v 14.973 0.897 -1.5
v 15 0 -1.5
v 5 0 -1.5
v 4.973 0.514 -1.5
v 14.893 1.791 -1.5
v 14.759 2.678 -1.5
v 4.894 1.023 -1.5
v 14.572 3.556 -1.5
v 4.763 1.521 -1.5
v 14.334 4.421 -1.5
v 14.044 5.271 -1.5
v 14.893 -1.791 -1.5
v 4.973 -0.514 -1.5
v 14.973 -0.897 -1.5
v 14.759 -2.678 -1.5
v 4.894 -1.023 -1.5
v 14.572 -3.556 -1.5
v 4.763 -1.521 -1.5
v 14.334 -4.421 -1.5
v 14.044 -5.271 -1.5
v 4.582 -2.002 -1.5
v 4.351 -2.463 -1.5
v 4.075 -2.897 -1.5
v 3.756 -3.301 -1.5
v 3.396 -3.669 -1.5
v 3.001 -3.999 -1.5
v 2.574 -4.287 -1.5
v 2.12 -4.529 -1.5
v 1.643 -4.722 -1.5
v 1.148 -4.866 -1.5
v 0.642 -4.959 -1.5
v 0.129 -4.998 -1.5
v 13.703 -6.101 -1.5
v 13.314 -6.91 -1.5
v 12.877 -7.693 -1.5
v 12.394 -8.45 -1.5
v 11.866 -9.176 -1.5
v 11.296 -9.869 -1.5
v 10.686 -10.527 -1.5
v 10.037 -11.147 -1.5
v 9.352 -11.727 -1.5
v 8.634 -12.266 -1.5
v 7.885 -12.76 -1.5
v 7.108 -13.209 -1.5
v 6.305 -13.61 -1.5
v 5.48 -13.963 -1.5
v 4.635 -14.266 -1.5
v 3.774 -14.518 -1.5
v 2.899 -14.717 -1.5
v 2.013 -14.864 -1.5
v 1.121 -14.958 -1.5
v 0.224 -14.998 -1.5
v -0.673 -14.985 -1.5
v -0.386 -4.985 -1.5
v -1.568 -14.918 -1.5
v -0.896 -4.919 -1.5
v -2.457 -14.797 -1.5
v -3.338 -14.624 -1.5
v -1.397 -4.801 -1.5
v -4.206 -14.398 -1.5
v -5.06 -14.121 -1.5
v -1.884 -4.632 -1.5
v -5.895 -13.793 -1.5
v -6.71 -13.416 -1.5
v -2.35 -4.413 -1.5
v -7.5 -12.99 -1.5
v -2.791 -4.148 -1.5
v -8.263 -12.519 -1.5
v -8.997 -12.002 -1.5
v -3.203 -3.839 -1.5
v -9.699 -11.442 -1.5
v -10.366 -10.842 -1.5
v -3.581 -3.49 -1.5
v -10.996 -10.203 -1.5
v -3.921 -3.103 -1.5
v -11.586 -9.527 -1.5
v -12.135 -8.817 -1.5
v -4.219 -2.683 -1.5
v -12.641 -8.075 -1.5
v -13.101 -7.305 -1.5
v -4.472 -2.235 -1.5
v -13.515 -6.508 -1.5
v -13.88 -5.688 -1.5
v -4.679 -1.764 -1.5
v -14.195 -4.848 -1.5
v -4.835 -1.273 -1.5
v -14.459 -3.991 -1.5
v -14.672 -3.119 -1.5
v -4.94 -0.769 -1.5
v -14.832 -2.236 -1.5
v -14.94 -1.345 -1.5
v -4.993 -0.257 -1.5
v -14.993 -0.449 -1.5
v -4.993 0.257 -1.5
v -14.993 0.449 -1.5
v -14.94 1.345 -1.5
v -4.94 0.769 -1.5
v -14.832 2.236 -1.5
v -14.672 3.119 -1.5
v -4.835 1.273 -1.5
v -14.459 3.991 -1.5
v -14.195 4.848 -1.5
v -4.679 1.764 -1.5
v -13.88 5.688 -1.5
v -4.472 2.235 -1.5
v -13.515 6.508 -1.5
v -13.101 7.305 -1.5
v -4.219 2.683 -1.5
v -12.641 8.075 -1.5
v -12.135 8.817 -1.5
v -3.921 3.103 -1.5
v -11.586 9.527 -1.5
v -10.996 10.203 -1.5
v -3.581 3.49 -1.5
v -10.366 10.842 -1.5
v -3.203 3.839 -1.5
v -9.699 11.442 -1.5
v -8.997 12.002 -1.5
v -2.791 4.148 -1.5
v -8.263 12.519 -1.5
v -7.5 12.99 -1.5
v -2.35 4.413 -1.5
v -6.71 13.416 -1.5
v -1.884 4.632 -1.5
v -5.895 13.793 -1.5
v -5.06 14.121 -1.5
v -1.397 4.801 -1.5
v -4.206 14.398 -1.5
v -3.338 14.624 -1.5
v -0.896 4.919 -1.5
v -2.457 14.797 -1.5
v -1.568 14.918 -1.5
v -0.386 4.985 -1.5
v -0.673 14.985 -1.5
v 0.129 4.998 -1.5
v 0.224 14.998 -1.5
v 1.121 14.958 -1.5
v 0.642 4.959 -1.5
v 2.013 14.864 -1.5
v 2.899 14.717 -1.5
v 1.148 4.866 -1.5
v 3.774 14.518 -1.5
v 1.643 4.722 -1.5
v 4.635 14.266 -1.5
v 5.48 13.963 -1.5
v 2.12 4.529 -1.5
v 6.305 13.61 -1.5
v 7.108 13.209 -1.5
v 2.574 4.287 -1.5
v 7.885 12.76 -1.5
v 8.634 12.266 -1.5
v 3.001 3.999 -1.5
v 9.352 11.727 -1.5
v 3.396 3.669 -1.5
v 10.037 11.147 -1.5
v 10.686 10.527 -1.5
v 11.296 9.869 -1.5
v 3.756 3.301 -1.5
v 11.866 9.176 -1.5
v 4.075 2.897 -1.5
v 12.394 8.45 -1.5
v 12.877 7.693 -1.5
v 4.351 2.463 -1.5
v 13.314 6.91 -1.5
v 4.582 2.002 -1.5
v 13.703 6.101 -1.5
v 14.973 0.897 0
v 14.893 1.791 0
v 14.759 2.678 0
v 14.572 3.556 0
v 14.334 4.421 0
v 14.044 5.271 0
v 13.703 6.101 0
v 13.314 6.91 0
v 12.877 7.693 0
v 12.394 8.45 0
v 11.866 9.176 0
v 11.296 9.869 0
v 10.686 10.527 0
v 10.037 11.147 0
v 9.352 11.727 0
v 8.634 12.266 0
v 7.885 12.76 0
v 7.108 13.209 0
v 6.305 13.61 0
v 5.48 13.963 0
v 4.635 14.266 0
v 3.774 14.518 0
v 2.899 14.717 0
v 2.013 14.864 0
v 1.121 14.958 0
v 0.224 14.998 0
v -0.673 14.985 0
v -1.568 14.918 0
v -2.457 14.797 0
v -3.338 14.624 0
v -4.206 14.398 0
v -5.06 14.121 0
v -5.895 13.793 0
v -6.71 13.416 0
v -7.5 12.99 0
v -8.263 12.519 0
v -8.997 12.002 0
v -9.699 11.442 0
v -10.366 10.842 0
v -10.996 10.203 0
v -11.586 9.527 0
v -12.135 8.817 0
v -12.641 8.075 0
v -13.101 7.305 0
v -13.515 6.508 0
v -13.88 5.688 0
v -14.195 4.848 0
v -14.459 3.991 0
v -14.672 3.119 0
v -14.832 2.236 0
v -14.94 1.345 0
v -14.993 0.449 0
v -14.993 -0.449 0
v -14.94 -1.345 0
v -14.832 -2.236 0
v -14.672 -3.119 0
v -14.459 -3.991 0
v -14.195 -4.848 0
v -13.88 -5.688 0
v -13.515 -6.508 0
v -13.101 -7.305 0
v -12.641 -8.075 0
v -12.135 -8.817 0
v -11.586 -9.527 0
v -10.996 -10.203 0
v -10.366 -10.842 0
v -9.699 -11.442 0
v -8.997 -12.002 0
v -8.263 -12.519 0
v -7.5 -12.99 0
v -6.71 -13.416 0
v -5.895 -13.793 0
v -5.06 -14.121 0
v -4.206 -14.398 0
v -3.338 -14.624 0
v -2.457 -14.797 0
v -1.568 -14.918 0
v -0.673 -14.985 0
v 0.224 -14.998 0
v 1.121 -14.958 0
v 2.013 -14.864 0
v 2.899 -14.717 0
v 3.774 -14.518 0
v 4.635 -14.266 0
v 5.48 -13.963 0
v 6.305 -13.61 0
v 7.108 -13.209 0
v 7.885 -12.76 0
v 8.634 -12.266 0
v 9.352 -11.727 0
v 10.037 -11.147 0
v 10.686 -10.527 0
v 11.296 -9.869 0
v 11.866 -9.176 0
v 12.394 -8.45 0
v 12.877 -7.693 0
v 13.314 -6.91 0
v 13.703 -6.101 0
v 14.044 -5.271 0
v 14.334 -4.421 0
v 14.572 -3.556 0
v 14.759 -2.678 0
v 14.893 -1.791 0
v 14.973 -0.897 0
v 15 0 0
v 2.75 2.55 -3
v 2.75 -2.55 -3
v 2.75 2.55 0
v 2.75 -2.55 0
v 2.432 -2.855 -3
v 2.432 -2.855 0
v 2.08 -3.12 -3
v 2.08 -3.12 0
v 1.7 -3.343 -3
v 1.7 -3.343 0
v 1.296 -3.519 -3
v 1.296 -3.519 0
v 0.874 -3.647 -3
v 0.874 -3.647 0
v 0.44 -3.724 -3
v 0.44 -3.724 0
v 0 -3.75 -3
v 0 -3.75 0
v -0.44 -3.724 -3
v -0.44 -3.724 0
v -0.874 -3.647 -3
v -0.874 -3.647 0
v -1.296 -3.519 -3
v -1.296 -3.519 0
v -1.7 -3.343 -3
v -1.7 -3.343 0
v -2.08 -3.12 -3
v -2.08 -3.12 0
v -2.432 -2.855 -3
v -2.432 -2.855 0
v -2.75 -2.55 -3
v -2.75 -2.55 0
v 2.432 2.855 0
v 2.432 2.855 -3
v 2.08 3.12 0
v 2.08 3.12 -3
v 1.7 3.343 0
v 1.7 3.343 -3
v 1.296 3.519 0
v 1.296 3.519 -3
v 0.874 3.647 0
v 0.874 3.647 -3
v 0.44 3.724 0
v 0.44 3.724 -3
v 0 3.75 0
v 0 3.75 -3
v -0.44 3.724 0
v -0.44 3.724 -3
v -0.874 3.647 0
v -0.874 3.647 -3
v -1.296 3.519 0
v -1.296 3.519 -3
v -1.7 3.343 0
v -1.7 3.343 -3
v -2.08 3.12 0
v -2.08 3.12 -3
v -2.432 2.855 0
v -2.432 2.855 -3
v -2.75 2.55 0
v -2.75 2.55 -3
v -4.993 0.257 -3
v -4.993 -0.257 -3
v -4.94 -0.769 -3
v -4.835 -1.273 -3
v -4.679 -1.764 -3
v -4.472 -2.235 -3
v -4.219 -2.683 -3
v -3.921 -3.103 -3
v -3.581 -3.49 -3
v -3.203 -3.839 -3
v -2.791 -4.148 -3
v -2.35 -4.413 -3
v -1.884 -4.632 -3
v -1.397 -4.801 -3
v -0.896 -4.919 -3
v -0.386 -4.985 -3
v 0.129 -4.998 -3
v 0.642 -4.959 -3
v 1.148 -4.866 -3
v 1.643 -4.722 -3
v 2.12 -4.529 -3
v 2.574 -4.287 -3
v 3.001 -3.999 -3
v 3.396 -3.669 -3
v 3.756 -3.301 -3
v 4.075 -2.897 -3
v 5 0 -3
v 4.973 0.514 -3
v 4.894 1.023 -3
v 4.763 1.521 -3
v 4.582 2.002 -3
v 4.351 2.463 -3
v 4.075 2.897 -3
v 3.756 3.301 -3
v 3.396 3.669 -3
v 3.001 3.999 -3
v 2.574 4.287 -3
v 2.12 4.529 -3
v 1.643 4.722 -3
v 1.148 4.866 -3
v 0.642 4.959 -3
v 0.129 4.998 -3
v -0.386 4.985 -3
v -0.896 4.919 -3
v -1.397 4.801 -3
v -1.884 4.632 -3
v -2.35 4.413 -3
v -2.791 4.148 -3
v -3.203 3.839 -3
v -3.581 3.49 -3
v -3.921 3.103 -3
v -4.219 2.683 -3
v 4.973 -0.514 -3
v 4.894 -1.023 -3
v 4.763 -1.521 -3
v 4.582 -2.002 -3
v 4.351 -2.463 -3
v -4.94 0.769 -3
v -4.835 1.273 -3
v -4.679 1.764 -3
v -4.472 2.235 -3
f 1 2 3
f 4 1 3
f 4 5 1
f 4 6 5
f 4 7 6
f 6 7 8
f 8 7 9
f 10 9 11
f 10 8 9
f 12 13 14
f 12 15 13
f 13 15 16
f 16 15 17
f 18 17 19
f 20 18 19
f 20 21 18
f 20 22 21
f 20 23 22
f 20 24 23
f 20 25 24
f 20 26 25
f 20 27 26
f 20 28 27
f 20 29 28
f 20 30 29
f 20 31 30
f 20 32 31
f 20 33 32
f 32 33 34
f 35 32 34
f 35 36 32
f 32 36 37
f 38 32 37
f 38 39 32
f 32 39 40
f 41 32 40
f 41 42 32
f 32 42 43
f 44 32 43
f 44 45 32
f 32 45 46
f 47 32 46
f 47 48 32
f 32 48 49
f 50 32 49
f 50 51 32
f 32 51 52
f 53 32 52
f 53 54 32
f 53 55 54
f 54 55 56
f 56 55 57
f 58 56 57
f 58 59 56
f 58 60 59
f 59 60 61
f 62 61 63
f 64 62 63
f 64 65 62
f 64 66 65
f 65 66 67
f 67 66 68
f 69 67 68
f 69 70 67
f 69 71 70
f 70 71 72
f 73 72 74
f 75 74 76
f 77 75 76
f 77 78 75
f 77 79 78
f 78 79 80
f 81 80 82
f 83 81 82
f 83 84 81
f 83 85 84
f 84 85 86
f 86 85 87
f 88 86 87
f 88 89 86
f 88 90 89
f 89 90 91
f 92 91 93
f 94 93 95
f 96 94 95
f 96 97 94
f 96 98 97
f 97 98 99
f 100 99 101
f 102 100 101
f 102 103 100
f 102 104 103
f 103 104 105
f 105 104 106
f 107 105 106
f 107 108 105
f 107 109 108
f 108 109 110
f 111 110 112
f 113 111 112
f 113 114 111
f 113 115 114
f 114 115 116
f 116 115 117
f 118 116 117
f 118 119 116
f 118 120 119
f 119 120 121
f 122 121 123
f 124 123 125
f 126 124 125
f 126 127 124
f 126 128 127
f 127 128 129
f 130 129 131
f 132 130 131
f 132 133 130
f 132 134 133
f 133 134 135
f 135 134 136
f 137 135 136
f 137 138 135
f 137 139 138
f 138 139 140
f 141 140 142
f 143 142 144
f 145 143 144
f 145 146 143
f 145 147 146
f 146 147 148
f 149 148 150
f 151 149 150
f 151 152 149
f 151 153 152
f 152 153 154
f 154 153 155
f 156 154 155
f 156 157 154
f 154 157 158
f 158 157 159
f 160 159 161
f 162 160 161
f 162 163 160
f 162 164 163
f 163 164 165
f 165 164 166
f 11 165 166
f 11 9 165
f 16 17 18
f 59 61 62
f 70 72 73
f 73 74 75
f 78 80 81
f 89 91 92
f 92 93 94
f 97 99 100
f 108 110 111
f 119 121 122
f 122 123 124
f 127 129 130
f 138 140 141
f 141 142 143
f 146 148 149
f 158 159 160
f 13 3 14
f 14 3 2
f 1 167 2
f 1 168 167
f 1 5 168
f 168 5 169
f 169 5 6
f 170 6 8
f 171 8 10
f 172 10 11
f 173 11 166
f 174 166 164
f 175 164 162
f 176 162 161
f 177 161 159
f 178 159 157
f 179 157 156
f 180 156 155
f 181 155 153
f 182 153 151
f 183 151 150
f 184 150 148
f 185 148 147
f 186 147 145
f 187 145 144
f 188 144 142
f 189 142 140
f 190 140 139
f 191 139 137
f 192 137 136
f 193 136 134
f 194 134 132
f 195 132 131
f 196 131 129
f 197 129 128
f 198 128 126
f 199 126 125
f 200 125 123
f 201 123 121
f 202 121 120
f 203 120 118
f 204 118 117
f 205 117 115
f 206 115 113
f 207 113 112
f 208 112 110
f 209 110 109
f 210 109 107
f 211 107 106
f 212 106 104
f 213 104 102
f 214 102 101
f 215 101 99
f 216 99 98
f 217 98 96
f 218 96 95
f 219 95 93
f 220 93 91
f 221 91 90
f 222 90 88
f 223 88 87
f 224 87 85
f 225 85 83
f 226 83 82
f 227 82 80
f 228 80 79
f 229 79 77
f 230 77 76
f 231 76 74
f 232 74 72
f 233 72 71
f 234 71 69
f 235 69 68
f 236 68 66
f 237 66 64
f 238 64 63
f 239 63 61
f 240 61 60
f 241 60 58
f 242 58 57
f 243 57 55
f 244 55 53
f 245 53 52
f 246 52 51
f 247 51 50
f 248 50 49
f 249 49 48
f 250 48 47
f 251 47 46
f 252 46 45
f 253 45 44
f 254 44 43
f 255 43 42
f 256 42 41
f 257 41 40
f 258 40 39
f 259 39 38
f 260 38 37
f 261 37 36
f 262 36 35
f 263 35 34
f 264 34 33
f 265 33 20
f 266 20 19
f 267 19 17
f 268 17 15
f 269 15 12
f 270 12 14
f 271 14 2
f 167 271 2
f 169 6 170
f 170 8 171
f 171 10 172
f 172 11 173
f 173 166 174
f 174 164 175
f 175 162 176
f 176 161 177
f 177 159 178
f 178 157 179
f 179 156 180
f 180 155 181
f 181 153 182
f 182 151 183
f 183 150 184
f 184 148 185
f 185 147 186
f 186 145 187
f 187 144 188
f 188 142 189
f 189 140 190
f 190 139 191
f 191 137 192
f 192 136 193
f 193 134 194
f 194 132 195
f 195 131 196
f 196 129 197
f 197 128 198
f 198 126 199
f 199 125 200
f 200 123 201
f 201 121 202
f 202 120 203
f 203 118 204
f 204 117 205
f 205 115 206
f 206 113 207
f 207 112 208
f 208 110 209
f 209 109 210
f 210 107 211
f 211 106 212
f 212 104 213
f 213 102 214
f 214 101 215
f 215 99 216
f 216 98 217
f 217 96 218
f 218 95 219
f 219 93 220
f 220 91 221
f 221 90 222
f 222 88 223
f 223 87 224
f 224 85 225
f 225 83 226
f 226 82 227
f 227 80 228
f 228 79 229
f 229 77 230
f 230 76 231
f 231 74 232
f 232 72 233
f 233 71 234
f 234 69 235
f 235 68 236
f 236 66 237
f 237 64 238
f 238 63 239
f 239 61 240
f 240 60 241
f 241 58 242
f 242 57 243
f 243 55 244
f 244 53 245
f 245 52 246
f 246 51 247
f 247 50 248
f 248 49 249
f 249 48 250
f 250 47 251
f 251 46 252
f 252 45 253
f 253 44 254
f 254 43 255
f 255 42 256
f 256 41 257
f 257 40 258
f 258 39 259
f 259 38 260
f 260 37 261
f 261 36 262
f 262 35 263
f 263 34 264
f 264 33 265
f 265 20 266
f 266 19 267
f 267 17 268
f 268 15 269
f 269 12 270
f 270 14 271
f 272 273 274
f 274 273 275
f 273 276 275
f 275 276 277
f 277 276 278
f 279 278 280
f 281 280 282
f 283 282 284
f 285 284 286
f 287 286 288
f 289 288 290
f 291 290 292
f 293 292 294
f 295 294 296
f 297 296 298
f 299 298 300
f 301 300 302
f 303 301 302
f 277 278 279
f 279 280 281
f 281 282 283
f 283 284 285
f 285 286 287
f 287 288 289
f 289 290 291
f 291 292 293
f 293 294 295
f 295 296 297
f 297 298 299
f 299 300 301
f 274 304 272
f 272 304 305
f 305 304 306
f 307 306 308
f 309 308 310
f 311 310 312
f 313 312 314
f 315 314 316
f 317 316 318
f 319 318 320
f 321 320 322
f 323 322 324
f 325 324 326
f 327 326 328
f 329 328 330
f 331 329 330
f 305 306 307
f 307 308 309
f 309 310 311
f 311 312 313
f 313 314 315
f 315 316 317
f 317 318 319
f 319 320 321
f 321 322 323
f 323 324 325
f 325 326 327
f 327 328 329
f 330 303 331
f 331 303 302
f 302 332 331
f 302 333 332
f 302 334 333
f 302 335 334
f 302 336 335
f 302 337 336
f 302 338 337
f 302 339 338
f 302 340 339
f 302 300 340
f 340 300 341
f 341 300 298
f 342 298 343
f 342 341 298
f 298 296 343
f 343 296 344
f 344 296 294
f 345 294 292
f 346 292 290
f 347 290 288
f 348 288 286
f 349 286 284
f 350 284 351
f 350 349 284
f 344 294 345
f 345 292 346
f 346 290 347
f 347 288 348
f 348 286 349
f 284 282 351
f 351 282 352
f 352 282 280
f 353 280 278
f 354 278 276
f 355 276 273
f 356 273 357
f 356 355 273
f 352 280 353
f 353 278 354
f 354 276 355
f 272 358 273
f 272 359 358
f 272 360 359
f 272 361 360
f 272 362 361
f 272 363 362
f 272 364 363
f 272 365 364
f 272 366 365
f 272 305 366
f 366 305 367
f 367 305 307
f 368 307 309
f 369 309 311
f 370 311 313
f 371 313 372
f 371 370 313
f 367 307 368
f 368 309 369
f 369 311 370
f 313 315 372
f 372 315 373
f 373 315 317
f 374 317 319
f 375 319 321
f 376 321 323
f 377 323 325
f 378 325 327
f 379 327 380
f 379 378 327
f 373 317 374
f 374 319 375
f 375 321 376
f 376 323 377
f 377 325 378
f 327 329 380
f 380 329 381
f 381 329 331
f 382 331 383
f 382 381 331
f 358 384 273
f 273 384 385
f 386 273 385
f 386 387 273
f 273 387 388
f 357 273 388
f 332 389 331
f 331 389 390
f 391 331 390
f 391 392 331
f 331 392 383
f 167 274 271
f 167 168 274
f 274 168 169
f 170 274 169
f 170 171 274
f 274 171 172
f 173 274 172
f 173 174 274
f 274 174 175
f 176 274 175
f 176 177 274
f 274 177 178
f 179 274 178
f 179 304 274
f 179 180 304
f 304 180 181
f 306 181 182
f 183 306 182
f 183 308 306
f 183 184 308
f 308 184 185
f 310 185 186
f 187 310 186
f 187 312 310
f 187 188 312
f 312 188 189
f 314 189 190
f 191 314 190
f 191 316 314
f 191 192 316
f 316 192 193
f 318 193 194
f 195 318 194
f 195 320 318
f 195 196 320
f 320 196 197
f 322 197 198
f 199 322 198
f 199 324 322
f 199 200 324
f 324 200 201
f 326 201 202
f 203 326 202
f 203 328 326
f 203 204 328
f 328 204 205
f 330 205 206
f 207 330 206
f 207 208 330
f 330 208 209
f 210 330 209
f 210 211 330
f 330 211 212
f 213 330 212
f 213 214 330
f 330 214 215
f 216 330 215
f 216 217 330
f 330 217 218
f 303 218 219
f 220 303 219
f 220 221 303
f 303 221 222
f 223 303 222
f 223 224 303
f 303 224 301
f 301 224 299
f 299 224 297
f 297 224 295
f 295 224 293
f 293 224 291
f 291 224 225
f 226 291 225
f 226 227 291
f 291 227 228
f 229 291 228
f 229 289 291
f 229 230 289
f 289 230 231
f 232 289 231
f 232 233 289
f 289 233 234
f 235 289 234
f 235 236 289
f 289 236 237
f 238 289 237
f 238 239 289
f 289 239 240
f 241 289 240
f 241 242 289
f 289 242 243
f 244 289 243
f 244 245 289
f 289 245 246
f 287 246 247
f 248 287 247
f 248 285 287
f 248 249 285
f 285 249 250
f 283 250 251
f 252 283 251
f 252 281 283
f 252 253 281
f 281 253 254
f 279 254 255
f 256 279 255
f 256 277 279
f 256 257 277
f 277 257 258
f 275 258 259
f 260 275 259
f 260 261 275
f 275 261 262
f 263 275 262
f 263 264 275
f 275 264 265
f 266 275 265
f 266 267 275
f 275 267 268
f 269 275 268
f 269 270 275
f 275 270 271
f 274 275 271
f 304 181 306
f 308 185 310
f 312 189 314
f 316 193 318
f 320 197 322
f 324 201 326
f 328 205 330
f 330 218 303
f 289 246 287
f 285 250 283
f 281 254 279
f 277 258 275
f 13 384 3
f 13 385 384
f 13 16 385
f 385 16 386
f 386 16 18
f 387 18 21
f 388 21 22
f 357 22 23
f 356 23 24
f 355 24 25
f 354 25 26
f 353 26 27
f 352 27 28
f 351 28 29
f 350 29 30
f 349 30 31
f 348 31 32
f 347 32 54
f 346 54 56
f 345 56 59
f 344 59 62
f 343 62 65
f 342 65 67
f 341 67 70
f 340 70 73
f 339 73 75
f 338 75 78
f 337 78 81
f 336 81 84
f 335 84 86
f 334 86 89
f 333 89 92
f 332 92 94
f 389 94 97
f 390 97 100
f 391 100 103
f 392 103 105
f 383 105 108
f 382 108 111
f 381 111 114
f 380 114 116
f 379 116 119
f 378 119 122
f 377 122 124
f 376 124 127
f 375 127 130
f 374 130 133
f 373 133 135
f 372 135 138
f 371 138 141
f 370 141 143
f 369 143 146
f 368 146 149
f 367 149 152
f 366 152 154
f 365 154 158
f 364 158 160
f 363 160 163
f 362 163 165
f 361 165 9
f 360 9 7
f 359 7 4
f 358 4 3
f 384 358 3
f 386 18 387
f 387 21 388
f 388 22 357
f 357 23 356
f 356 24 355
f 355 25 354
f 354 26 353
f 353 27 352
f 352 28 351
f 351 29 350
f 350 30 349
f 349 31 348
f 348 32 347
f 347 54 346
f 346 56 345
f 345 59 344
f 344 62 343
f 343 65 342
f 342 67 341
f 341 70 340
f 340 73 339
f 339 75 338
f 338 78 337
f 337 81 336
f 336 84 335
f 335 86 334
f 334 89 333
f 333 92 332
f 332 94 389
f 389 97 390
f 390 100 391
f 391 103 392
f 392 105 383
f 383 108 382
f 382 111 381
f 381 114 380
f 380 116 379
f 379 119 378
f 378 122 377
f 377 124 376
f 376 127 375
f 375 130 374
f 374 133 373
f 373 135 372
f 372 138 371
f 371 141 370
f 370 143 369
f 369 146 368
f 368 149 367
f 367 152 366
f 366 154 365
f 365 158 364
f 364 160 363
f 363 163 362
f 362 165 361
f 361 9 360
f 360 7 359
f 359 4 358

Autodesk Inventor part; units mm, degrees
ref_plane "YZ Plane" through (0, 0, 0) normal (1, 0, 0) x (0, 1, 0)
ref_plane "XZ Plane" through (0, 0, 0) normal (0, 1, 0) x (-1, 0, 0)
ref_plane "XY Plane" through (0, 0, 0) normal (0, 0, 1) x (1, 0, 0)
sketch "スケッチ1" plane through (0, 0, 0) normal (0, 0, 1) x (1, 0, 0)
  circle A0 centre (0, 0) radius 5
  circle A1 centre (0, 0) radius 3.75
  line L0 (-3.75, 3) -> (-2.75, 3)
  line L1 (-2.75, 3) -> (-2.75, -3)
  line L2 (-2.75, -3) -> (-3.75, -3)
  line L3 (-3.75, -3) -> (-3.75, 3)
  line L4 (3.75, -3) -> (2.75, -3)
  line L5 (2.75, -3) -> (2.75, 3)
  line L6 (2.75, 3) -> (3.75, 3)
  line L7 (3.75, 3) -> (3.75, -3)
  dimension "d0" = 10
  dimension "d1" = 7.5
  dimension "d2" = 5.5
  dimension "d3" = 1
  dimension "d4" = 1
  dimension "d5" = 6
  dimension "d6" = 6
  dimension "d7" = 3
  dimension "d8" = 2.75
  dimension "d17" = 3
extrude "押し出し1" add sketch "スケッチ1" against normal blind 3 contours A0 | A1 L5 | L7 L4 L5 A1 | A1 L5 L6 L7 | L1 A1 | A1 L3 L0 L1 | L1 L2 L3 A1
sketch "スケッチ2" plane through (0, 0, 0) normal (0, 0, 1) x (1, 0, 0)
  circle A0 centre (0, 0) radius 15
  circle A1 centre (0, 0) radius 4
  dimension "d11" = 30
  dimension "d14" = 8
extrude "押し出し3" add sketch "スケッチ2" against normal blind 1.5
equation "\"d8\" = 0.5 * d2"
properties part number "disc_put"
